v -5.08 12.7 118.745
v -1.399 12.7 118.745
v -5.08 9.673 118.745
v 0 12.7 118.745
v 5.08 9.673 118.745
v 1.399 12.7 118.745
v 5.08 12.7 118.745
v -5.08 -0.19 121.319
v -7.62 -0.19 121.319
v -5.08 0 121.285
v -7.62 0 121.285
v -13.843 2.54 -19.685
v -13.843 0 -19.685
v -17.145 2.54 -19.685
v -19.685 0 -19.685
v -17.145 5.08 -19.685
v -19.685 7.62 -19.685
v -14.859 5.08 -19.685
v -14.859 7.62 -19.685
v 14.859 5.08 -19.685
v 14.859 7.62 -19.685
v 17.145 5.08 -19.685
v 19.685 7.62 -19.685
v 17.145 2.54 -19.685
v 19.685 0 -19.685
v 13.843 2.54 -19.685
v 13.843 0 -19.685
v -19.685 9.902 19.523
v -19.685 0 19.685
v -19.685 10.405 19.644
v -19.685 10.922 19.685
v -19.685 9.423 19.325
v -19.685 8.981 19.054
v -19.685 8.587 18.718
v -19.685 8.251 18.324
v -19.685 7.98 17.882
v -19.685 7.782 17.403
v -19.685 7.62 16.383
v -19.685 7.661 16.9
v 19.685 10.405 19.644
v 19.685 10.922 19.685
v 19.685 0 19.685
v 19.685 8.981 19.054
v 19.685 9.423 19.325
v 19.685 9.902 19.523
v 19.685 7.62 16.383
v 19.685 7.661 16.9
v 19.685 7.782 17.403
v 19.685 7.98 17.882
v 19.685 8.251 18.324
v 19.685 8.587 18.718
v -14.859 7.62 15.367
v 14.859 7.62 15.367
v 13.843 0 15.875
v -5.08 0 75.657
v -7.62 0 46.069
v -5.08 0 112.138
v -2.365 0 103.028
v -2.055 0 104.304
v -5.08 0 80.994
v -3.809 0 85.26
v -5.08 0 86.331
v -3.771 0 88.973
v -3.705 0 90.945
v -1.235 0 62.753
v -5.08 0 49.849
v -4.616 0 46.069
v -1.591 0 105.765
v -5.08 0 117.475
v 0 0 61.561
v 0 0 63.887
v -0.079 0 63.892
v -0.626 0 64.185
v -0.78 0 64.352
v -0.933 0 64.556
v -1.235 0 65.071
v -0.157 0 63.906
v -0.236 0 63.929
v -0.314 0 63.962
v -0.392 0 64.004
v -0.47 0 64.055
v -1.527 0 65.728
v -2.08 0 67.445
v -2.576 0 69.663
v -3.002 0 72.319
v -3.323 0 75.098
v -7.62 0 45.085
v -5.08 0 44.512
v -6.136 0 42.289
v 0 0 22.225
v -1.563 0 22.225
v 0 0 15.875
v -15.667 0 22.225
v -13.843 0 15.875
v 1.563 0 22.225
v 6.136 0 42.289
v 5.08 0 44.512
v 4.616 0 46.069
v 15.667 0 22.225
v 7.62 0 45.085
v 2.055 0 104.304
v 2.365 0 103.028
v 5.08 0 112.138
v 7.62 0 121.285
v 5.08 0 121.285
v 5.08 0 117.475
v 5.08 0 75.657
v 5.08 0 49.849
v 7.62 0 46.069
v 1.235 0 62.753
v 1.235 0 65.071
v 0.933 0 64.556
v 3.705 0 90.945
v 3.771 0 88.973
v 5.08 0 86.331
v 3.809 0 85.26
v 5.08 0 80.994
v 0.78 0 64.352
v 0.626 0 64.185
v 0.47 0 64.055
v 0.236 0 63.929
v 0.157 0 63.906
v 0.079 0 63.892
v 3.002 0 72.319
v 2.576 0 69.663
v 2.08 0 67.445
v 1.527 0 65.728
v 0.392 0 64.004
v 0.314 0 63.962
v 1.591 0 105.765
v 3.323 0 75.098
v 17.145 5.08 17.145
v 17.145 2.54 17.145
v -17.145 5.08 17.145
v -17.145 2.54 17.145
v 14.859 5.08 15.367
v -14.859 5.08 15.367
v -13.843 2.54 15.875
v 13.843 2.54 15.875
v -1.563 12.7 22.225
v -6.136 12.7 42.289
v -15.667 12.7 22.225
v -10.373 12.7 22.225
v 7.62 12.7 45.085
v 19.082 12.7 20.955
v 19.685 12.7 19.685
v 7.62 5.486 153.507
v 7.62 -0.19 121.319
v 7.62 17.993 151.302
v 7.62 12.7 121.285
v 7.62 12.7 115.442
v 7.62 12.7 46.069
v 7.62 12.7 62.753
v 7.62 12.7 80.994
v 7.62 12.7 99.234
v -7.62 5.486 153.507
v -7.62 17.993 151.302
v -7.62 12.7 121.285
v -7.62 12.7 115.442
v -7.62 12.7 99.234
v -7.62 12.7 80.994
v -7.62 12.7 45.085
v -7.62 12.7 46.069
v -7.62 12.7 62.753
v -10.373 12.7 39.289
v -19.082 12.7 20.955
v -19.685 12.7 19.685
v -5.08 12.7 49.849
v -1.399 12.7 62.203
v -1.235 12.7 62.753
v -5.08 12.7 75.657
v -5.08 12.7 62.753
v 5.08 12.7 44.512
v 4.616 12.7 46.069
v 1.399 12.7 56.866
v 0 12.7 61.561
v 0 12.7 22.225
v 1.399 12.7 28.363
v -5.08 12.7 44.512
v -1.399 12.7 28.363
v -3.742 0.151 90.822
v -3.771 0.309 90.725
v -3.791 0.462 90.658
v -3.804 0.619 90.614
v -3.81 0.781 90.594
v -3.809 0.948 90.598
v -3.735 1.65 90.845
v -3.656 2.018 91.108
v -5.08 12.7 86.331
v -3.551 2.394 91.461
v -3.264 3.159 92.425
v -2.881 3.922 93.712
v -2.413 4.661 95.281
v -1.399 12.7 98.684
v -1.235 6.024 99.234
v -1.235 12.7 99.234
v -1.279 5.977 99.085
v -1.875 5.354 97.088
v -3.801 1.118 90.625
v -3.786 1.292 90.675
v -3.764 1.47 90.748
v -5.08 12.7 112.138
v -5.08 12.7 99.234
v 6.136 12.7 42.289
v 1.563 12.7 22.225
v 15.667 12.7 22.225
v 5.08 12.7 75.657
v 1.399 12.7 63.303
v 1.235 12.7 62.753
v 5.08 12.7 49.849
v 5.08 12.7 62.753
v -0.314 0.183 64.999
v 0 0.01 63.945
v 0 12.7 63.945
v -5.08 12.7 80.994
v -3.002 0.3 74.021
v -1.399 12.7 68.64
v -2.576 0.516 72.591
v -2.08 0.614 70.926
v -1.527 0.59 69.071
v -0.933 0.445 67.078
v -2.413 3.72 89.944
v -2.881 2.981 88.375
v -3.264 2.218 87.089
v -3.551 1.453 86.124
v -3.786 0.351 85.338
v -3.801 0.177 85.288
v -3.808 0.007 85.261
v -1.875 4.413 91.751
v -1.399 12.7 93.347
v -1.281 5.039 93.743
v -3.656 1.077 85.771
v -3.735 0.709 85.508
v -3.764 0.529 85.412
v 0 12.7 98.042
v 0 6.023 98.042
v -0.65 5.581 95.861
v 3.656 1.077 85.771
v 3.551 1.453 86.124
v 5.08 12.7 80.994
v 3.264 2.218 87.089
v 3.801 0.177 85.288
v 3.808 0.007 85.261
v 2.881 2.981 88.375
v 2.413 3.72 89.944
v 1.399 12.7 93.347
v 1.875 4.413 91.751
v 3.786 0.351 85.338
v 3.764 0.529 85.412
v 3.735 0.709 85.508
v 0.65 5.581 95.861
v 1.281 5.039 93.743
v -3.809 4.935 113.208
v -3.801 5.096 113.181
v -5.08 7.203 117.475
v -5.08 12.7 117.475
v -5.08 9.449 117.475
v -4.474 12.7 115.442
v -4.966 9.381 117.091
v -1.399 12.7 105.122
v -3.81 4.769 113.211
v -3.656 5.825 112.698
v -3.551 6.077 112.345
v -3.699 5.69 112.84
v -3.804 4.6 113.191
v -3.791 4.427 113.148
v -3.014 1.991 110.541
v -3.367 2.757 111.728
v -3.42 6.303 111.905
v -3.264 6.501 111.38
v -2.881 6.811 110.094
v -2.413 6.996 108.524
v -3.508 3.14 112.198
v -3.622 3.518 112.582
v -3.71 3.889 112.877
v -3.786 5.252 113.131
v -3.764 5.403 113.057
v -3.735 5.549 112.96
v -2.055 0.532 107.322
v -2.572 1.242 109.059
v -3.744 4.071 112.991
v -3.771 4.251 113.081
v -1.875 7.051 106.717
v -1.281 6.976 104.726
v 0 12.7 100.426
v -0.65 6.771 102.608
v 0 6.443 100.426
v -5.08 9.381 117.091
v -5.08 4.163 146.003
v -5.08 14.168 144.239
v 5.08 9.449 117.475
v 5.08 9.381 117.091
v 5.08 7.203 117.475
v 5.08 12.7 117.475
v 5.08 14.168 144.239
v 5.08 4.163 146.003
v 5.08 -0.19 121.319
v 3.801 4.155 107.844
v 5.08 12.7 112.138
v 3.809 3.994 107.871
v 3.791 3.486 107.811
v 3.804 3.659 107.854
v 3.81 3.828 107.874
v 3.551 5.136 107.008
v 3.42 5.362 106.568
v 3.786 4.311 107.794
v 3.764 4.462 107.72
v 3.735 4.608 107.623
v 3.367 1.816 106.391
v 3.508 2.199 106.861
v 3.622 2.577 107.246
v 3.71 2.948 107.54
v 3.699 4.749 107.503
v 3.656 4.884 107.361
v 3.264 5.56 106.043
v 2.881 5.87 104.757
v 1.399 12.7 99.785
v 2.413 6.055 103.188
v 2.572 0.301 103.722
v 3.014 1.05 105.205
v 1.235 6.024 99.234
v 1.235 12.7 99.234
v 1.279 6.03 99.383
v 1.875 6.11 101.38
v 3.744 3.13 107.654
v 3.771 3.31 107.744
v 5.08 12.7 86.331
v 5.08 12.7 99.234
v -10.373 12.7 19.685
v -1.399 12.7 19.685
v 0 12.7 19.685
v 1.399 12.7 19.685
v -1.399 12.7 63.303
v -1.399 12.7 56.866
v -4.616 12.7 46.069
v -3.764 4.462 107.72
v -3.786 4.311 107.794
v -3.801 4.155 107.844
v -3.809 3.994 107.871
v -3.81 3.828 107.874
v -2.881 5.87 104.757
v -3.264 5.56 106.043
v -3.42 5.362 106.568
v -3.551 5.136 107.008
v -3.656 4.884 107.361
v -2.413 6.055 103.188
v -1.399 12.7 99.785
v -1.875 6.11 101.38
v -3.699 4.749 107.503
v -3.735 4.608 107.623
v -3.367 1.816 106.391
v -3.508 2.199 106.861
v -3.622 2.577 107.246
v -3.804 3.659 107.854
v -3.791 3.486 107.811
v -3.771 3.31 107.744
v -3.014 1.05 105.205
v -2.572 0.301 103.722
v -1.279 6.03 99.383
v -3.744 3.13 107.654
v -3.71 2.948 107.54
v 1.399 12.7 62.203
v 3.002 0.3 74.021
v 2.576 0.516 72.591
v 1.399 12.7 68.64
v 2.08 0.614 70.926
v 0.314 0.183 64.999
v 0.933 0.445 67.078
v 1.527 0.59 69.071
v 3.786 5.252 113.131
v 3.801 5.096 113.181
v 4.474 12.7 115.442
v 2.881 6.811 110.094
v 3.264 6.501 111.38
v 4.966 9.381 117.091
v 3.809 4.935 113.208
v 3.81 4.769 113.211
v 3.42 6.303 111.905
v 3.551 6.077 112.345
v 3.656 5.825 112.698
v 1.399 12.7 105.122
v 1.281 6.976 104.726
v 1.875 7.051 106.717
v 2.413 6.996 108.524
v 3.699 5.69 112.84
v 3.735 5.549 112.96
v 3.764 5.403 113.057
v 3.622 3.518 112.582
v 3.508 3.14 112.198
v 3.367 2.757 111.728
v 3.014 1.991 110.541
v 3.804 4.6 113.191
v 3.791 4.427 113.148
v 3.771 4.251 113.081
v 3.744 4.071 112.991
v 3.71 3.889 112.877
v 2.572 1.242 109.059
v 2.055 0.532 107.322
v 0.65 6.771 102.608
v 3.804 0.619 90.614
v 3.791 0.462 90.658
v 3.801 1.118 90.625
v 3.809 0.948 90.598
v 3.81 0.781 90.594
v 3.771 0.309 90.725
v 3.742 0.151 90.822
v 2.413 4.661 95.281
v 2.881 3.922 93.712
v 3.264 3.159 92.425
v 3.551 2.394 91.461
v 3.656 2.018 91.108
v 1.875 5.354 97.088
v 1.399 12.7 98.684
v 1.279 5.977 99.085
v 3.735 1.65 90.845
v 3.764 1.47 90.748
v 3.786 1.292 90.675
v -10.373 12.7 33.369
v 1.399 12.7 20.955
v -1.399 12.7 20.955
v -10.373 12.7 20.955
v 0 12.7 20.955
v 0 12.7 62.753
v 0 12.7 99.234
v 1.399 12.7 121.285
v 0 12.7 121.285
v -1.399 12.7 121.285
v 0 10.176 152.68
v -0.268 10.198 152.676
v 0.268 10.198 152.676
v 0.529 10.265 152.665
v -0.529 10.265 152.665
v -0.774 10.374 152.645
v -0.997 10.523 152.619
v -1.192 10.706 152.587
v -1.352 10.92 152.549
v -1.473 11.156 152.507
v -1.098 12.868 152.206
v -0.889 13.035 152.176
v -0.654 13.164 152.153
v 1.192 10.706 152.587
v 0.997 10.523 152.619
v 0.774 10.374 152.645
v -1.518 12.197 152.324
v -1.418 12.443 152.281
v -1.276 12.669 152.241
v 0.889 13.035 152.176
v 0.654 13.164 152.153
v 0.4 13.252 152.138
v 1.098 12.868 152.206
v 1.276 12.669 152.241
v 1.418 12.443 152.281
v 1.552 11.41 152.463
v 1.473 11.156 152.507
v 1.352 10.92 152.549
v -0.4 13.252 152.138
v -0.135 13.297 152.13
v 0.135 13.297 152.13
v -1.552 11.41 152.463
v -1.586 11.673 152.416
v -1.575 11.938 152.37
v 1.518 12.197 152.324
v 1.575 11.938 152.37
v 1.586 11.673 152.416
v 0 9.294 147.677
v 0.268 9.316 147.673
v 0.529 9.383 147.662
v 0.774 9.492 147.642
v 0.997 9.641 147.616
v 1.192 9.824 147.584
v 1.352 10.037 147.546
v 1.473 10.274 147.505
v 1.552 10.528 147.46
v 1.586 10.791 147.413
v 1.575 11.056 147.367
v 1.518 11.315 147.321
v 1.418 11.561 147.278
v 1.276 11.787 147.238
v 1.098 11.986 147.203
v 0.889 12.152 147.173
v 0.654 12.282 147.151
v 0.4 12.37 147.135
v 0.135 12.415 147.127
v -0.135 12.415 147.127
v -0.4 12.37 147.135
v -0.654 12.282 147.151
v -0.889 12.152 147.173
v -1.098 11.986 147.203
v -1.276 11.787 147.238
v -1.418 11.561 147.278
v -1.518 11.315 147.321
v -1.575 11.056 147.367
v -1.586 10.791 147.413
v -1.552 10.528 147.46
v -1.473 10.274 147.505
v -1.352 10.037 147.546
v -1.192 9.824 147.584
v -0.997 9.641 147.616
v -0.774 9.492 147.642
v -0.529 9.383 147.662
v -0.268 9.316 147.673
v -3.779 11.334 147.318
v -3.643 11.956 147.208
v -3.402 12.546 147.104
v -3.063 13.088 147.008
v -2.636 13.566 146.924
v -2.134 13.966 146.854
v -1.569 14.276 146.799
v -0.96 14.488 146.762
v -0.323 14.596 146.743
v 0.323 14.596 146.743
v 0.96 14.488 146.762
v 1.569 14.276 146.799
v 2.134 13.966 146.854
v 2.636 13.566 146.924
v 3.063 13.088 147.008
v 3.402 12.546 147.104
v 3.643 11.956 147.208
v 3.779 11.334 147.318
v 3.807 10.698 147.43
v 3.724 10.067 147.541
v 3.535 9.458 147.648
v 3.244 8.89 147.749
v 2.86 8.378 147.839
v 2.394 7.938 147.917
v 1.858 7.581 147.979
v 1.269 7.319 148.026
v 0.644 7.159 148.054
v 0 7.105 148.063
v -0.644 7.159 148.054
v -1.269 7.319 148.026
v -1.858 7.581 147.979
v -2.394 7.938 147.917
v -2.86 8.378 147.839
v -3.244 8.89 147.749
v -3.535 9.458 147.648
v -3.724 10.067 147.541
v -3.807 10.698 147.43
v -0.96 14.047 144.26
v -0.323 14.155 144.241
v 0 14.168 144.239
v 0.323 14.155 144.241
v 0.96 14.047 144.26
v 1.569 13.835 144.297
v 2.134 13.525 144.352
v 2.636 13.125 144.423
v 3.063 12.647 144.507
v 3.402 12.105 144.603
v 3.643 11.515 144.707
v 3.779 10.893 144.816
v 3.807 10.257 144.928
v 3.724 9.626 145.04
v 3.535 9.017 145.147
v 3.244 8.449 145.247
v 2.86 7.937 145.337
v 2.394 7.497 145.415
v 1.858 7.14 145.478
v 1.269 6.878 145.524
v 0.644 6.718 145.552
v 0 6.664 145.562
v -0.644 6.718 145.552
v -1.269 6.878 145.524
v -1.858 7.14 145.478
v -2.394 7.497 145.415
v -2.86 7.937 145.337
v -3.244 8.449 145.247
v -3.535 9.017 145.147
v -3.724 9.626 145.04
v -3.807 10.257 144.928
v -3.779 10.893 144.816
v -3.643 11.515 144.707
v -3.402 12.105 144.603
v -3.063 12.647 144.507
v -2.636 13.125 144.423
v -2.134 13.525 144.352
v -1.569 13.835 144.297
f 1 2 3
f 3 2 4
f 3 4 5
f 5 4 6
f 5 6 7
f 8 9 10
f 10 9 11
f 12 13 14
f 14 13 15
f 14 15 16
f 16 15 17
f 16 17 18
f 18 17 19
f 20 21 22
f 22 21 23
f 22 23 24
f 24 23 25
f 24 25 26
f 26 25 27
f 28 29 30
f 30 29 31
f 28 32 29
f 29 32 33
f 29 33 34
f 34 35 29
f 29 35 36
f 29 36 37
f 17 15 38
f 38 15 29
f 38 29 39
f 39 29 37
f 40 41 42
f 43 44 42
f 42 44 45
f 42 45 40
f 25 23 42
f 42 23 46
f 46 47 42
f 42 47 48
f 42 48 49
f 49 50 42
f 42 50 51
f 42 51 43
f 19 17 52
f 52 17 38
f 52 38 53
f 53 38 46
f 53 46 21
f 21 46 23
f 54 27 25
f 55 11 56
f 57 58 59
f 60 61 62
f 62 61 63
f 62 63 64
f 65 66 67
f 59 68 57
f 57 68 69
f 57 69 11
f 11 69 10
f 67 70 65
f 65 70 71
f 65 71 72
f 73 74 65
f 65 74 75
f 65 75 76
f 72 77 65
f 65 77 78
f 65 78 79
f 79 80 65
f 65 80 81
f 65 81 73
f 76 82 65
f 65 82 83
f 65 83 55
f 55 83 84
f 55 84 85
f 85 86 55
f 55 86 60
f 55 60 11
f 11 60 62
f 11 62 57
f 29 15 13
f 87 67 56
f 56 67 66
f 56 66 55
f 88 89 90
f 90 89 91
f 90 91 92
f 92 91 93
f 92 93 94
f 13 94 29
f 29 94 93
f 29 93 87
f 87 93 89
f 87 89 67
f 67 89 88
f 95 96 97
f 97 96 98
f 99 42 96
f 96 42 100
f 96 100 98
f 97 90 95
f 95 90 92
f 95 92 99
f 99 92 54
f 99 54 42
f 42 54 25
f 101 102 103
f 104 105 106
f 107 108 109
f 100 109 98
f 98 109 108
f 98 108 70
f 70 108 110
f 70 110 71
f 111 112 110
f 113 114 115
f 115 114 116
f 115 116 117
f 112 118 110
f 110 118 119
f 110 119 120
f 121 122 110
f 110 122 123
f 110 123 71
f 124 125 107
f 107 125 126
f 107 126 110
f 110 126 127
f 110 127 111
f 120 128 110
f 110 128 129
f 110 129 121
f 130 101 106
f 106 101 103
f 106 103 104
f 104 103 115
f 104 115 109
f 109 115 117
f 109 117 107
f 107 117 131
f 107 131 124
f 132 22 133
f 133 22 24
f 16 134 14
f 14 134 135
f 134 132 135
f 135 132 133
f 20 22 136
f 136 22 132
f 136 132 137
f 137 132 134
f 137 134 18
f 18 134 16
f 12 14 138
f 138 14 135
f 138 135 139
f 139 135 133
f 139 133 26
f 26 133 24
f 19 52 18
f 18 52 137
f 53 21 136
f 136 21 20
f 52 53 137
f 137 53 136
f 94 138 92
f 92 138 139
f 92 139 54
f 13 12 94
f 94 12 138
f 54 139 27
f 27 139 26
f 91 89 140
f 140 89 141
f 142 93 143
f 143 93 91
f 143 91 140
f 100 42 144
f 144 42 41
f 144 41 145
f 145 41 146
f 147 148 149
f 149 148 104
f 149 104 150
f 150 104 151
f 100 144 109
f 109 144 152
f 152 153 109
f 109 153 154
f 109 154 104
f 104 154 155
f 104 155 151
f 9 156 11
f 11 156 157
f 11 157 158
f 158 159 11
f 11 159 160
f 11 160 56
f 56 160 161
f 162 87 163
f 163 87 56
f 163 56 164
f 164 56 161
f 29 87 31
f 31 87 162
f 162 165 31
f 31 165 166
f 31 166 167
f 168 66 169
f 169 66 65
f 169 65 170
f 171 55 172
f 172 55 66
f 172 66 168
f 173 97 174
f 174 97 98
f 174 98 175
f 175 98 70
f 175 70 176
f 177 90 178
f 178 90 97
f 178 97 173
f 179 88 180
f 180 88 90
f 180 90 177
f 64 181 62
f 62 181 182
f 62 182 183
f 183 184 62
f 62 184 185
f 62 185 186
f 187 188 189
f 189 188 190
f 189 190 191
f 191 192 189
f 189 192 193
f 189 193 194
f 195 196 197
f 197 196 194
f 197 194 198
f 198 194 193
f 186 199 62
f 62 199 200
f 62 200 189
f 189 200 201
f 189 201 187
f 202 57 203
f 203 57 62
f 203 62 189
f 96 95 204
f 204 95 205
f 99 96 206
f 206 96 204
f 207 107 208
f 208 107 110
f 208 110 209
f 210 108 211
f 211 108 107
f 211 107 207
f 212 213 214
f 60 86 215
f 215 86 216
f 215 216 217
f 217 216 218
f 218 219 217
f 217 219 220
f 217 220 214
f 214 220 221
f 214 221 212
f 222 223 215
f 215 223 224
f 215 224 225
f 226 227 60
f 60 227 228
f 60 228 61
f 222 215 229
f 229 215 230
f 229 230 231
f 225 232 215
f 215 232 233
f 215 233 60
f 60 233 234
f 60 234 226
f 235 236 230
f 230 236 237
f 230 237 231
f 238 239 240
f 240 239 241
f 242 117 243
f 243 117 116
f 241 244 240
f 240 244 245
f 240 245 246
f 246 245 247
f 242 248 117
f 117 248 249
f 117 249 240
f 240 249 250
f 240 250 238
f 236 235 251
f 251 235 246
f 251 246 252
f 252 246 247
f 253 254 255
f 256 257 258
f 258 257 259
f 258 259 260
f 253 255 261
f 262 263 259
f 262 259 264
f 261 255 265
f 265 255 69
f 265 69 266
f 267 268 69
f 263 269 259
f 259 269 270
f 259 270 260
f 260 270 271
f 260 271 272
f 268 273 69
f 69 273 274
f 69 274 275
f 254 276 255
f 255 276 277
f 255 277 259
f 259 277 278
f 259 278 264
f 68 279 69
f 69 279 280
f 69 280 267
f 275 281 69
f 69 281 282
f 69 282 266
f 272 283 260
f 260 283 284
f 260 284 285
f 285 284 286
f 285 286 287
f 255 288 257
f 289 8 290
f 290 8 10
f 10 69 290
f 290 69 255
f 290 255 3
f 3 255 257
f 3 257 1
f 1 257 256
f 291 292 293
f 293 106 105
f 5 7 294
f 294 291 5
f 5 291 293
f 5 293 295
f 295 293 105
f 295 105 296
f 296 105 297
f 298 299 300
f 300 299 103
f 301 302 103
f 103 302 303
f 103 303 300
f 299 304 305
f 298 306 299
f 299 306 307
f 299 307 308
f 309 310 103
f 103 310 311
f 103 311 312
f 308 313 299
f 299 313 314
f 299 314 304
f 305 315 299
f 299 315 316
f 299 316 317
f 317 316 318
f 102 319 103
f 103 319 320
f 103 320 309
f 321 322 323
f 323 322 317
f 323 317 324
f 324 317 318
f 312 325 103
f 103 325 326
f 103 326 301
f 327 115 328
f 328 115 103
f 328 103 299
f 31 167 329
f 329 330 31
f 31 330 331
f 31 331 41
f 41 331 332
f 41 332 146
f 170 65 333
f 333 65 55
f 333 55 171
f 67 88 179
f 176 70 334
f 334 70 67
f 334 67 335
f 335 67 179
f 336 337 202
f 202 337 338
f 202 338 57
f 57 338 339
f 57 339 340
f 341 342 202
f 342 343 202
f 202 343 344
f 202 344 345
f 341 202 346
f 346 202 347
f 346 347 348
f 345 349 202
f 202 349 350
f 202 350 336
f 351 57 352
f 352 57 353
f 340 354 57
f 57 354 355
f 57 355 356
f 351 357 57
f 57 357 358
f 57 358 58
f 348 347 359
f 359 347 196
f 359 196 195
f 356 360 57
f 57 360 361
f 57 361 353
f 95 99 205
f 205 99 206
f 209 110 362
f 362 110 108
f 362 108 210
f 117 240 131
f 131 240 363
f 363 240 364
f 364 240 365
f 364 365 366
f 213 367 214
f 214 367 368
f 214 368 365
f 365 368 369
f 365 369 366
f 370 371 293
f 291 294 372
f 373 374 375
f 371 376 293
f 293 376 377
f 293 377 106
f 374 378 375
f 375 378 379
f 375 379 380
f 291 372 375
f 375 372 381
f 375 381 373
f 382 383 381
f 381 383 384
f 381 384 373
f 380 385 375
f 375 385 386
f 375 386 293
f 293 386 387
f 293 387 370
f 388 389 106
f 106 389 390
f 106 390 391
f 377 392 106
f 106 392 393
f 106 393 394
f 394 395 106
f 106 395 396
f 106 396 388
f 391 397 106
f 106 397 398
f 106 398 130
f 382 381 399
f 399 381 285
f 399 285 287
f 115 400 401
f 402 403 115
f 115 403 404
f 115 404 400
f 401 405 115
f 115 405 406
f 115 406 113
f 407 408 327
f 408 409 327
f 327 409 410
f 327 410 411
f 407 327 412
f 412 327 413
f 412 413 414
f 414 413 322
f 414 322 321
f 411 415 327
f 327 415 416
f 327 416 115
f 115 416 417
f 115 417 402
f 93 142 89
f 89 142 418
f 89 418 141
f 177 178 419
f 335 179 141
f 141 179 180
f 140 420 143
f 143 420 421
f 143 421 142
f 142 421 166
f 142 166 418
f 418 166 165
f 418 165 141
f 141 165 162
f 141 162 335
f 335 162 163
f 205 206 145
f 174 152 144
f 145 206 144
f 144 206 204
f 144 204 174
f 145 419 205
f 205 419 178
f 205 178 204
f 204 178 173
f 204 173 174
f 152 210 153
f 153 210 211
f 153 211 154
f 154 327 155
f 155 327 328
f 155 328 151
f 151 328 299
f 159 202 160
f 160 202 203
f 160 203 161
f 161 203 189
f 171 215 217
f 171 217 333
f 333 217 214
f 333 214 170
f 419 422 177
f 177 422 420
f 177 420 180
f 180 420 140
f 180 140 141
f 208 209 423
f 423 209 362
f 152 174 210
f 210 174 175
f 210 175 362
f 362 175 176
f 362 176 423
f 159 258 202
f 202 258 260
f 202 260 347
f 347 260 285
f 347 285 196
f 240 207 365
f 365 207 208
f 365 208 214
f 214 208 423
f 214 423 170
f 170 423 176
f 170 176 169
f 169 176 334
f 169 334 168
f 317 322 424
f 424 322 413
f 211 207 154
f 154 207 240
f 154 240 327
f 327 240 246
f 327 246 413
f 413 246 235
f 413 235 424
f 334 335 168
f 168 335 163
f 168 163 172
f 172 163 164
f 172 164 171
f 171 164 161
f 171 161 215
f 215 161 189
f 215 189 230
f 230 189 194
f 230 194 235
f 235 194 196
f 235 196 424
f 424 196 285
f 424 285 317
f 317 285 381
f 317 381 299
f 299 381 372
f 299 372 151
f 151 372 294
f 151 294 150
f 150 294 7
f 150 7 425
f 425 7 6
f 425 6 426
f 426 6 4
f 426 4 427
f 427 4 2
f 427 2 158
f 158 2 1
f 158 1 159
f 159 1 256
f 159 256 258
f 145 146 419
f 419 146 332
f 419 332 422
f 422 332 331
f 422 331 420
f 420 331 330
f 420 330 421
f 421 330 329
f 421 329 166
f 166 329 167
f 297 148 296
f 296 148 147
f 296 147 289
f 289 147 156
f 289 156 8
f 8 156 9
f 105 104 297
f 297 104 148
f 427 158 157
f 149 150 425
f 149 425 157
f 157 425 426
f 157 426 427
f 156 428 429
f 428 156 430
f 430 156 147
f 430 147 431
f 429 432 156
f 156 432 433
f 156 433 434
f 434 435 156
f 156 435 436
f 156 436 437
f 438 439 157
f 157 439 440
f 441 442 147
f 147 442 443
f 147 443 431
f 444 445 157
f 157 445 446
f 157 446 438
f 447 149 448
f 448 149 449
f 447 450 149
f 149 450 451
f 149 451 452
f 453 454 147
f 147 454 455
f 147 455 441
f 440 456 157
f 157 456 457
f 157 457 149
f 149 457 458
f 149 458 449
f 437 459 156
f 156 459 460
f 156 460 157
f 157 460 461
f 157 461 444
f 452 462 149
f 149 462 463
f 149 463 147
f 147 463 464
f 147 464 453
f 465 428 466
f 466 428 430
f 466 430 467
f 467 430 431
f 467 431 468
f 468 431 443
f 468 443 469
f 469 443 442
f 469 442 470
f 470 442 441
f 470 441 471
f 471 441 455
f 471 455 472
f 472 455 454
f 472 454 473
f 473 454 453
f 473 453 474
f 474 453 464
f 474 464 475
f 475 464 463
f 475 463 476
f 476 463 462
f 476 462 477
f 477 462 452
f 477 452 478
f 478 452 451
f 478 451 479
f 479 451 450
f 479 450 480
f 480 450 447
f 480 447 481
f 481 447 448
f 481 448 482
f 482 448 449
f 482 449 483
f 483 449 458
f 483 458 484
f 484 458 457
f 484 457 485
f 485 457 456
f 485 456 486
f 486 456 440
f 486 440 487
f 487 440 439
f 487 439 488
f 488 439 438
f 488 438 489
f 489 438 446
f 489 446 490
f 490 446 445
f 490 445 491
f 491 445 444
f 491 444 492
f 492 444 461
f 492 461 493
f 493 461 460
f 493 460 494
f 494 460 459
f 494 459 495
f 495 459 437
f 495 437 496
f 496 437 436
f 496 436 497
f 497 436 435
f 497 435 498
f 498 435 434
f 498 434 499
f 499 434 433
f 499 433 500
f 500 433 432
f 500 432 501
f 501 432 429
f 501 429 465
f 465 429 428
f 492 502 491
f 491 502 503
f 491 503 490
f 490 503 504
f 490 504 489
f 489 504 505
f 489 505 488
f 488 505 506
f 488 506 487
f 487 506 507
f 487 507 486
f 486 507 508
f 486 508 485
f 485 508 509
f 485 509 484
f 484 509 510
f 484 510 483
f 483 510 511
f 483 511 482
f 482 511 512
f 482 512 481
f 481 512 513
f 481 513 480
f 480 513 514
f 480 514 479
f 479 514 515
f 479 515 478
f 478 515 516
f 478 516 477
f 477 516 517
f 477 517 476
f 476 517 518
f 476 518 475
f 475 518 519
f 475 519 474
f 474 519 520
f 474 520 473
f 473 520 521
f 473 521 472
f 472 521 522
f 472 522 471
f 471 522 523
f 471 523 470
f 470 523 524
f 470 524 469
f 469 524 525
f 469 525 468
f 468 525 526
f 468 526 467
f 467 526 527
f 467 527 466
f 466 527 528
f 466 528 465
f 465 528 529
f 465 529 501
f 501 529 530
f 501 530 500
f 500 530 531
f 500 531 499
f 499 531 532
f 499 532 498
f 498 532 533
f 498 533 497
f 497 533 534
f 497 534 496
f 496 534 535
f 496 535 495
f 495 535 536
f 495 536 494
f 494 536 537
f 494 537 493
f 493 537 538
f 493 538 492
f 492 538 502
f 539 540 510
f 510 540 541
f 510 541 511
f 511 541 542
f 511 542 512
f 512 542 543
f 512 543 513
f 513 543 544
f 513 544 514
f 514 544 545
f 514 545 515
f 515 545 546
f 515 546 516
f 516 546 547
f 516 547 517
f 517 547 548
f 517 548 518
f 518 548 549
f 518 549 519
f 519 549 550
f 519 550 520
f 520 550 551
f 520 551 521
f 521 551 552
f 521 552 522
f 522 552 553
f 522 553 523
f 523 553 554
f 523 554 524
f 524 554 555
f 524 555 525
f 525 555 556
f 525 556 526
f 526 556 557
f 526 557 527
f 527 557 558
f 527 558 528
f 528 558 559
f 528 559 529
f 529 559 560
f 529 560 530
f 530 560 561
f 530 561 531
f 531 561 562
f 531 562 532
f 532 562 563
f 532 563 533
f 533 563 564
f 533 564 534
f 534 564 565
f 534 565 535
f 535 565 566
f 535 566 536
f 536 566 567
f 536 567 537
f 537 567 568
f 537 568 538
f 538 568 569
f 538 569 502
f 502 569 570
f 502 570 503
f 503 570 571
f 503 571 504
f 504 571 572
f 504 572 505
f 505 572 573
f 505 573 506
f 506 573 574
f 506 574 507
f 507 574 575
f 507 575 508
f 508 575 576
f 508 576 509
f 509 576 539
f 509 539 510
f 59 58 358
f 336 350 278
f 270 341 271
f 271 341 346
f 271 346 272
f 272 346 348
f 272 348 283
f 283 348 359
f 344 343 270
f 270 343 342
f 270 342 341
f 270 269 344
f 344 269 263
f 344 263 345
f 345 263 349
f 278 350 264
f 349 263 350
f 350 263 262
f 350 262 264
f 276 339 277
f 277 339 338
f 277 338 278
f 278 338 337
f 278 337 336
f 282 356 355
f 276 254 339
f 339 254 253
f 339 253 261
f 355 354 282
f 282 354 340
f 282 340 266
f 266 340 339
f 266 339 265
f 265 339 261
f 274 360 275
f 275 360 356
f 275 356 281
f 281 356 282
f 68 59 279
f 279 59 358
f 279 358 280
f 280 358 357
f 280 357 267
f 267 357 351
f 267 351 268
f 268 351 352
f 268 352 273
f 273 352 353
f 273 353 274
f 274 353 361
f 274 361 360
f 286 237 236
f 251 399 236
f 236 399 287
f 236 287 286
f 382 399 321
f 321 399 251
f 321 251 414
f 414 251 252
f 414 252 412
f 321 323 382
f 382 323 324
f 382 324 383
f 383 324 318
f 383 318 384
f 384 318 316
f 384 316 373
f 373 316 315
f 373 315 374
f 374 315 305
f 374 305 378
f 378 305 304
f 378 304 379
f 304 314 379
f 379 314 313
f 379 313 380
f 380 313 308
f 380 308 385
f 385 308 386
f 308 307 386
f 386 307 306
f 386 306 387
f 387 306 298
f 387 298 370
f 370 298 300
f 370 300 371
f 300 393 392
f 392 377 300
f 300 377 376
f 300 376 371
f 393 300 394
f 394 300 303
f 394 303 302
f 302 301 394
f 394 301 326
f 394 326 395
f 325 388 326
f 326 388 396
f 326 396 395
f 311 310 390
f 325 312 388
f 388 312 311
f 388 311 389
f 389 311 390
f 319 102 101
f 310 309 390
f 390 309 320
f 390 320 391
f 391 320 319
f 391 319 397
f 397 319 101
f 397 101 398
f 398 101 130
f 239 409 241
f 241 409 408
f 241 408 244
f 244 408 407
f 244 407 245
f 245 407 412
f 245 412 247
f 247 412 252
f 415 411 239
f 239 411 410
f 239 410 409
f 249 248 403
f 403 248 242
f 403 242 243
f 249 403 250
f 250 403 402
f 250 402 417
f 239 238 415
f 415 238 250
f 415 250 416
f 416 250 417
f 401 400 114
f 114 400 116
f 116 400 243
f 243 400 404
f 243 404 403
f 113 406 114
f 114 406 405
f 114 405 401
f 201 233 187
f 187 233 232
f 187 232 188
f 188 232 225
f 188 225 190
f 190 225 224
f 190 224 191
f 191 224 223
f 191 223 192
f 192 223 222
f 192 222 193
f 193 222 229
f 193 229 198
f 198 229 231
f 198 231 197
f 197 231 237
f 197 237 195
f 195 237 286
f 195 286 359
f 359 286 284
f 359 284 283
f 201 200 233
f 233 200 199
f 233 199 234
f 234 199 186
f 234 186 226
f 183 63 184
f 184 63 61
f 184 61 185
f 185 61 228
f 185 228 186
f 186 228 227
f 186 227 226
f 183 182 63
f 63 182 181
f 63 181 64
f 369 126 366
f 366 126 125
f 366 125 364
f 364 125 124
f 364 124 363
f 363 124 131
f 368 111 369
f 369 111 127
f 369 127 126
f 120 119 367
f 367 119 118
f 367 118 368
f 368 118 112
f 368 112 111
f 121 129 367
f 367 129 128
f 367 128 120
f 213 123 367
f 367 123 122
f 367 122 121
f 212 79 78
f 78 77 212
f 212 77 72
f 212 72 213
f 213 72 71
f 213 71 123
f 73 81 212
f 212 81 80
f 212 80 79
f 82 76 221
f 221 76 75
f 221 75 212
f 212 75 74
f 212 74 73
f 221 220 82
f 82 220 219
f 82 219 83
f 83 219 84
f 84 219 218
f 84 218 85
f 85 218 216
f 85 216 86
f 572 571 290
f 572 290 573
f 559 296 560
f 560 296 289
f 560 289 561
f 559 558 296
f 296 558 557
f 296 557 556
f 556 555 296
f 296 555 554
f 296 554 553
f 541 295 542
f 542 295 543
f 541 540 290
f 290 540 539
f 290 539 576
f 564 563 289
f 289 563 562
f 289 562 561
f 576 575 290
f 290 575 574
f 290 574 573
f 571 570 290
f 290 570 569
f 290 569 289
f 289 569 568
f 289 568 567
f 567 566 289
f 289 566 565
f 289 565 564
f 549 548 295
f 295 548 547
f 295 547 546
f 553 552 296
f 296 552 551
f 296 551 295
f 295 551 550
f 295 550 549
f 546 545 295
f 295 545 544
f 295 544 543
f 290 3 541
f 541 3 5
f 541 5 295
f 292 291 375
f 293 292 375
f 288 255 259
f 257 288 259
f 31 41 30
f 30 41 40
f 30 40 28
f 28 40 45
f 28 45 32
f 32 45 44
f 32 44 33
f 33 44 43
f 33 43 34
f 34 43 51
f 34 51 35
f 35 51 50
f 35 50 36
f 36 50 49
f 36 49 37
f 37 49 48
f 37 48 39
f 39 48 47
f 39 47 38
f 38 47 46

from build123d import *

# Parameters (mm, degrees)
SKETCH1_W           = 39.37
SKETCH1_H           = 39.37
SKETCH1_W_2         = 34.29
SKETCH1_H_2         = 34.29
SKETCH1_H_3         = 2.54
BOSS_EXTRUDE1_DEPTH = 7.62
CUT_EXTRUDE1_START  = 2.54
SKETCH1_4_W         = 34.29
SKETCH1_4_H         = 34.29
SKETCH1_4_H_2       = 2.54
CUT_EXTRUDE1_DEPTH  = 2.54
SKETCH4_W           = 29.718
SKETCH4_H           = 35.052
CUT_EXTRUDE2_DEPTH  = 2.54
SKETCH5_W           = 27.686
SKETCH5_H           = 35.56
CUT_EXTRUDE3_DEPTH  = 2.54
BOSS_EXTRUDE2_START = 5.08
BOSS_EXTRUDE2_DEPTH = 12.7
SKETCH7_W           = 15.24
SKETCH7_H           = 12.7
BOSS_EXTRUDE3_DEPTH = 2.205332
SKETCH7_2_W         = 15.24
SKETCH7_2_H         = 12.7
BOSS_EXTRUDE4_DEPTH = 30.48
CUT_EXTRUDE5_DEPTH  = 173.702638821
CUT_EXTRUDE6_START  = -5.08
SKETCH8_3_R         = 3.81
SKETCH8_3_R_2       = 1.5875
CUT_EXTRUDE6_DEPTH  = 168.622638821
SKETCH9_W           = 10.16
SKETCH9_H           = 27.566743549
CUT_EXTRUDE7_DEPTH  = 10.16
FILLET2_R           = 3.302


with BuildPart() as part:
    # Sketch1 → Boss-Extrude1 (new body)
    # profile 1 of 3: a face of its own
    with BuildSketch(Plane(origin=(0, 0, 0), x_dir=(1, 0, 0), z_dir=(0, 1, 0))):
        Rectangle(SKETCH1_W, SKETCH1_H)
        Rectangle(SKETCH1_W_2, SKETCH1_H_2, mode=Mode.SUBTRACT)
    # profile 2 of 3: a face of its own
    with BuildSketch(Plane(origin=(0, 0, 0), x_dir=(1, 0, 0), z_dir=(0, 1, 0))):
        Rectangle(SKETCH1_W_2, SKETCH1_H_2)
    # profile 3 of 3: a face of its own
    with BuildSketch(Plane(origin=(0, 0, 0), x_dir=(1, 0, 0), z_dir=(0, 1, 0))):
        with Locations((0, 18.415)):
            Rectangle(SKETCH1_W_2, SKETCH1_H_3)
    extrude(amount=BOSS_EXTRUDE1_DEPTH)

    # Sketch1<4> → Cut-Extrude1 (cut)
    with BuildSketch(Plane(origin=(0, 0, 0), x_dir=(1, 0, 0), z_dir=(0, 1, 0)).offset(CUT_EXTRUDE1_START)):
        Rectangle(SKETCH1_4_W, SKETCH1_4_H)
        with Locations((0, 18.415)):
            Rectangle(SKETCH1_4_W, SKETCH1_4_H_2)
    extrude(amount=CUT_EXTRUDE1_DEPTH, mode=Mode.SUBTRACT)

    # Sketch4 → Cut-Extrude2 (cut)
    with BuildSketch(Plane(origin=(0, 7.62, 0), x_dir=(1, 0, 0), z_dir=(0, 1, 0))):
        with Locations((0, 2.159)):
            Rectangle(SKETCH4_W, SKETCH4_H)
    extrude(amount=-CUT_EXTRUDE2_DEPTH, mode=Mode.SUBTRACT)

    # Sketch5 → Cut-Extrude3 (cut)
    with BuildSketch(Plane.XZ):
        with Locations((0, -1.905)):
            Rectangle(SKETCH5_W, SKETCH5_H)
    extrude(amount=-CUT_EXTRUDE3_DEPTH, mode=Mode.SUBTRACT)

    # Sketch6 → Boss-Extrude2 (add)
    with BuildSketch(Plane(origin=(0, 7.62, 0), x_dir=(1, 0, 0), z_dir=(0, 1, 0)).offset(BOSS_EXTRUDE2_START)):
        Polygon((19.685, -19.685), (0, -19.685), (-19.685, -19.685), (-7.62, -45.085), (-7.62, -121.285), (7.62, -121.285), (7.62, -45.085), align=None)
        Polygon((-5.08, -86.330562843), (-1.235077939, -99.234351627), (-5.08, -112.138140412), align=None, mode=Mode.SUBTRACT)
        Polygon((-5.08, -117.475), (0, -100.426215662), (5.08, -117.475), (5.08, -118.745), (-5.08, -118.745), align=None, mode=Mode.SUBTRACT)
        Polygon((1.235077939, -99.234351627), (5.08, -86.330562843), (5.08, -112.138140412), align=None, mode=Mode.SUBTRACT)
        Polygon((0, -98.042487593), (-5.08, -80.993703255), (0, -63.944918917), (5.08, -80.993703255), align=None, mode=Mode.SUBTRACT)
        Polygon((-5.08, -49.849266098), (-1.235077939, -62.753054882), (-5.08, -75.656843666), align=None, mode=Mode.SUBTRACT)
        Polygon((-15.666518092, -22.225), (-1.563086741, -22.225), (-6.136242744, -42.288737575), align=None, mode=Mode.SUBTRACT)
        Polygon((1.235077939, -62.753054882), (5.08, -49.849266098), (5.08, -75.656843666), align=None, mode=Mode.SUBTRACT)
        Polygon((-5.08, -44.51240651), (0, -22.225), (5.08, -44.51240651), (0, -61.561190848), align=None, mode=Mode.SUBTRACT)
        Polygon((6.136242744, -42.288737575), (1.563086741, -22.225), (15.666518092, -22.225), align=None, mode=Mode.SUBTRACT)
    extrude(amount=-BOSS_EXTRUDE2_DEPTH)

    # Sketch7 → Boss-Extrude3 (add)
    with BuildSketch(Plane(origin=(0, 21.1239084, 119.799637666), x_dir=(1, 0, 0), z_dir=(0, 0.17364817766691723, 0.9848077530122104))):
        with Locations((0, -14.903860765)):
            Rectangle(SKETCH7_W, SKETCH7_H)
    extrude(amount=-BOSS_EXTRUDE3_DEPTH)

    # Sketch7<2> → Boss-Extrude4 (add)
    with BuildSketch(Plane(origin=(0, 21.1239084, 119.799637666), x_dir=(1, 0, 0), z_dir=(0, 0.17364817766691723, 0.9848077530122104))):
        with Locations((0, -14.903860765)):
            Rectangle(SKETCH7_2_W, SKETCH7_2_H)
    extrude(amount=BOSS_EXTRUDE4_DEPTH)

    # Sketch8 → Cut-Extrude5 (cut, through all)
    with BuildSketch(Plane(origin=(0, 26.416704855, 149.816577978), x_dir=(1, 0, 0), z_dir=(0, 0.1736481776669177, 0.9848077530122102))):
        with BuildLine():
            ThreePointArc((1.5875, -14.903860765), (0.540425106, -13.411179636), (-1.219551281, -13.887568031))
            Line((-1.219551281, -13.887568031), (1.219551281, -15.9201535))
            ThreePointArc((1.219551281, -15.9201535), (1.49268113, -15.444285871), (1.5875, -14.903860765))
        make_face()
        with BuildLine():
            Line((1.219551281, -15.9201535), (-1.219551281, -13.887568031))
            ThreePointArc((-1.219551281, -13.887568031), (-1.016292734, -16.123412046), (1.219551281, -15.9201535))
        make_face()
    extrude(amount=-CUT_EXTRUDE5_DEPTH, mode=Mode.SUBTRACT)

    # Sketch8<3> → Cut-Extrude6 (cut, through all)
    with BuildSketch(Plane(origin=(0, 26.416704855, 149.816577978), x_dir=(1, 0, 0), z_dir=(0, 0.1736481776669177, 0.9848077530122102)).offset(CUT_EXTRUDE6_START)):
        with Locations(Location((0, -14.903860765, 0), (0, 0, 270))):
            Circle(SKETCH8_3_R)
        with Locations(Location((0, -14.903860765, 0), (0, 0, 270))):
            Circle(SKETCH8_3_R_2, mode=Mode.SUBTRACT)
    extrude(amount=-CUT_EXTRUDE6_DEPTH, mode=Mode.SUBTRACT)

    # Sketch9 → Cut-Extrude7 (cut)
    with BuildSketch(Plane(origin=(0, -20.930966863, 3.69069419), x_dir=(1, 0, 0), z_dir=(0, -0.9848077530122105, 0.1736481776669173))):
        with Locations((0, 130.724368406)):
            Rectangle(SKETCH9_W, SKETCH9_H)
    extrude(amount=-CUT_EXTRUDE7_DEPTH, mode=Mode.SUBTRACT)

    # Fillet2
    fillet2_edges = [part.edges().sort_by_distance(p)[0] for p in [
        (0, 7.62, 19.685),
    ]]
    fillet(fillet2_edges, radius=FILLET2_R)


solid = part.part
